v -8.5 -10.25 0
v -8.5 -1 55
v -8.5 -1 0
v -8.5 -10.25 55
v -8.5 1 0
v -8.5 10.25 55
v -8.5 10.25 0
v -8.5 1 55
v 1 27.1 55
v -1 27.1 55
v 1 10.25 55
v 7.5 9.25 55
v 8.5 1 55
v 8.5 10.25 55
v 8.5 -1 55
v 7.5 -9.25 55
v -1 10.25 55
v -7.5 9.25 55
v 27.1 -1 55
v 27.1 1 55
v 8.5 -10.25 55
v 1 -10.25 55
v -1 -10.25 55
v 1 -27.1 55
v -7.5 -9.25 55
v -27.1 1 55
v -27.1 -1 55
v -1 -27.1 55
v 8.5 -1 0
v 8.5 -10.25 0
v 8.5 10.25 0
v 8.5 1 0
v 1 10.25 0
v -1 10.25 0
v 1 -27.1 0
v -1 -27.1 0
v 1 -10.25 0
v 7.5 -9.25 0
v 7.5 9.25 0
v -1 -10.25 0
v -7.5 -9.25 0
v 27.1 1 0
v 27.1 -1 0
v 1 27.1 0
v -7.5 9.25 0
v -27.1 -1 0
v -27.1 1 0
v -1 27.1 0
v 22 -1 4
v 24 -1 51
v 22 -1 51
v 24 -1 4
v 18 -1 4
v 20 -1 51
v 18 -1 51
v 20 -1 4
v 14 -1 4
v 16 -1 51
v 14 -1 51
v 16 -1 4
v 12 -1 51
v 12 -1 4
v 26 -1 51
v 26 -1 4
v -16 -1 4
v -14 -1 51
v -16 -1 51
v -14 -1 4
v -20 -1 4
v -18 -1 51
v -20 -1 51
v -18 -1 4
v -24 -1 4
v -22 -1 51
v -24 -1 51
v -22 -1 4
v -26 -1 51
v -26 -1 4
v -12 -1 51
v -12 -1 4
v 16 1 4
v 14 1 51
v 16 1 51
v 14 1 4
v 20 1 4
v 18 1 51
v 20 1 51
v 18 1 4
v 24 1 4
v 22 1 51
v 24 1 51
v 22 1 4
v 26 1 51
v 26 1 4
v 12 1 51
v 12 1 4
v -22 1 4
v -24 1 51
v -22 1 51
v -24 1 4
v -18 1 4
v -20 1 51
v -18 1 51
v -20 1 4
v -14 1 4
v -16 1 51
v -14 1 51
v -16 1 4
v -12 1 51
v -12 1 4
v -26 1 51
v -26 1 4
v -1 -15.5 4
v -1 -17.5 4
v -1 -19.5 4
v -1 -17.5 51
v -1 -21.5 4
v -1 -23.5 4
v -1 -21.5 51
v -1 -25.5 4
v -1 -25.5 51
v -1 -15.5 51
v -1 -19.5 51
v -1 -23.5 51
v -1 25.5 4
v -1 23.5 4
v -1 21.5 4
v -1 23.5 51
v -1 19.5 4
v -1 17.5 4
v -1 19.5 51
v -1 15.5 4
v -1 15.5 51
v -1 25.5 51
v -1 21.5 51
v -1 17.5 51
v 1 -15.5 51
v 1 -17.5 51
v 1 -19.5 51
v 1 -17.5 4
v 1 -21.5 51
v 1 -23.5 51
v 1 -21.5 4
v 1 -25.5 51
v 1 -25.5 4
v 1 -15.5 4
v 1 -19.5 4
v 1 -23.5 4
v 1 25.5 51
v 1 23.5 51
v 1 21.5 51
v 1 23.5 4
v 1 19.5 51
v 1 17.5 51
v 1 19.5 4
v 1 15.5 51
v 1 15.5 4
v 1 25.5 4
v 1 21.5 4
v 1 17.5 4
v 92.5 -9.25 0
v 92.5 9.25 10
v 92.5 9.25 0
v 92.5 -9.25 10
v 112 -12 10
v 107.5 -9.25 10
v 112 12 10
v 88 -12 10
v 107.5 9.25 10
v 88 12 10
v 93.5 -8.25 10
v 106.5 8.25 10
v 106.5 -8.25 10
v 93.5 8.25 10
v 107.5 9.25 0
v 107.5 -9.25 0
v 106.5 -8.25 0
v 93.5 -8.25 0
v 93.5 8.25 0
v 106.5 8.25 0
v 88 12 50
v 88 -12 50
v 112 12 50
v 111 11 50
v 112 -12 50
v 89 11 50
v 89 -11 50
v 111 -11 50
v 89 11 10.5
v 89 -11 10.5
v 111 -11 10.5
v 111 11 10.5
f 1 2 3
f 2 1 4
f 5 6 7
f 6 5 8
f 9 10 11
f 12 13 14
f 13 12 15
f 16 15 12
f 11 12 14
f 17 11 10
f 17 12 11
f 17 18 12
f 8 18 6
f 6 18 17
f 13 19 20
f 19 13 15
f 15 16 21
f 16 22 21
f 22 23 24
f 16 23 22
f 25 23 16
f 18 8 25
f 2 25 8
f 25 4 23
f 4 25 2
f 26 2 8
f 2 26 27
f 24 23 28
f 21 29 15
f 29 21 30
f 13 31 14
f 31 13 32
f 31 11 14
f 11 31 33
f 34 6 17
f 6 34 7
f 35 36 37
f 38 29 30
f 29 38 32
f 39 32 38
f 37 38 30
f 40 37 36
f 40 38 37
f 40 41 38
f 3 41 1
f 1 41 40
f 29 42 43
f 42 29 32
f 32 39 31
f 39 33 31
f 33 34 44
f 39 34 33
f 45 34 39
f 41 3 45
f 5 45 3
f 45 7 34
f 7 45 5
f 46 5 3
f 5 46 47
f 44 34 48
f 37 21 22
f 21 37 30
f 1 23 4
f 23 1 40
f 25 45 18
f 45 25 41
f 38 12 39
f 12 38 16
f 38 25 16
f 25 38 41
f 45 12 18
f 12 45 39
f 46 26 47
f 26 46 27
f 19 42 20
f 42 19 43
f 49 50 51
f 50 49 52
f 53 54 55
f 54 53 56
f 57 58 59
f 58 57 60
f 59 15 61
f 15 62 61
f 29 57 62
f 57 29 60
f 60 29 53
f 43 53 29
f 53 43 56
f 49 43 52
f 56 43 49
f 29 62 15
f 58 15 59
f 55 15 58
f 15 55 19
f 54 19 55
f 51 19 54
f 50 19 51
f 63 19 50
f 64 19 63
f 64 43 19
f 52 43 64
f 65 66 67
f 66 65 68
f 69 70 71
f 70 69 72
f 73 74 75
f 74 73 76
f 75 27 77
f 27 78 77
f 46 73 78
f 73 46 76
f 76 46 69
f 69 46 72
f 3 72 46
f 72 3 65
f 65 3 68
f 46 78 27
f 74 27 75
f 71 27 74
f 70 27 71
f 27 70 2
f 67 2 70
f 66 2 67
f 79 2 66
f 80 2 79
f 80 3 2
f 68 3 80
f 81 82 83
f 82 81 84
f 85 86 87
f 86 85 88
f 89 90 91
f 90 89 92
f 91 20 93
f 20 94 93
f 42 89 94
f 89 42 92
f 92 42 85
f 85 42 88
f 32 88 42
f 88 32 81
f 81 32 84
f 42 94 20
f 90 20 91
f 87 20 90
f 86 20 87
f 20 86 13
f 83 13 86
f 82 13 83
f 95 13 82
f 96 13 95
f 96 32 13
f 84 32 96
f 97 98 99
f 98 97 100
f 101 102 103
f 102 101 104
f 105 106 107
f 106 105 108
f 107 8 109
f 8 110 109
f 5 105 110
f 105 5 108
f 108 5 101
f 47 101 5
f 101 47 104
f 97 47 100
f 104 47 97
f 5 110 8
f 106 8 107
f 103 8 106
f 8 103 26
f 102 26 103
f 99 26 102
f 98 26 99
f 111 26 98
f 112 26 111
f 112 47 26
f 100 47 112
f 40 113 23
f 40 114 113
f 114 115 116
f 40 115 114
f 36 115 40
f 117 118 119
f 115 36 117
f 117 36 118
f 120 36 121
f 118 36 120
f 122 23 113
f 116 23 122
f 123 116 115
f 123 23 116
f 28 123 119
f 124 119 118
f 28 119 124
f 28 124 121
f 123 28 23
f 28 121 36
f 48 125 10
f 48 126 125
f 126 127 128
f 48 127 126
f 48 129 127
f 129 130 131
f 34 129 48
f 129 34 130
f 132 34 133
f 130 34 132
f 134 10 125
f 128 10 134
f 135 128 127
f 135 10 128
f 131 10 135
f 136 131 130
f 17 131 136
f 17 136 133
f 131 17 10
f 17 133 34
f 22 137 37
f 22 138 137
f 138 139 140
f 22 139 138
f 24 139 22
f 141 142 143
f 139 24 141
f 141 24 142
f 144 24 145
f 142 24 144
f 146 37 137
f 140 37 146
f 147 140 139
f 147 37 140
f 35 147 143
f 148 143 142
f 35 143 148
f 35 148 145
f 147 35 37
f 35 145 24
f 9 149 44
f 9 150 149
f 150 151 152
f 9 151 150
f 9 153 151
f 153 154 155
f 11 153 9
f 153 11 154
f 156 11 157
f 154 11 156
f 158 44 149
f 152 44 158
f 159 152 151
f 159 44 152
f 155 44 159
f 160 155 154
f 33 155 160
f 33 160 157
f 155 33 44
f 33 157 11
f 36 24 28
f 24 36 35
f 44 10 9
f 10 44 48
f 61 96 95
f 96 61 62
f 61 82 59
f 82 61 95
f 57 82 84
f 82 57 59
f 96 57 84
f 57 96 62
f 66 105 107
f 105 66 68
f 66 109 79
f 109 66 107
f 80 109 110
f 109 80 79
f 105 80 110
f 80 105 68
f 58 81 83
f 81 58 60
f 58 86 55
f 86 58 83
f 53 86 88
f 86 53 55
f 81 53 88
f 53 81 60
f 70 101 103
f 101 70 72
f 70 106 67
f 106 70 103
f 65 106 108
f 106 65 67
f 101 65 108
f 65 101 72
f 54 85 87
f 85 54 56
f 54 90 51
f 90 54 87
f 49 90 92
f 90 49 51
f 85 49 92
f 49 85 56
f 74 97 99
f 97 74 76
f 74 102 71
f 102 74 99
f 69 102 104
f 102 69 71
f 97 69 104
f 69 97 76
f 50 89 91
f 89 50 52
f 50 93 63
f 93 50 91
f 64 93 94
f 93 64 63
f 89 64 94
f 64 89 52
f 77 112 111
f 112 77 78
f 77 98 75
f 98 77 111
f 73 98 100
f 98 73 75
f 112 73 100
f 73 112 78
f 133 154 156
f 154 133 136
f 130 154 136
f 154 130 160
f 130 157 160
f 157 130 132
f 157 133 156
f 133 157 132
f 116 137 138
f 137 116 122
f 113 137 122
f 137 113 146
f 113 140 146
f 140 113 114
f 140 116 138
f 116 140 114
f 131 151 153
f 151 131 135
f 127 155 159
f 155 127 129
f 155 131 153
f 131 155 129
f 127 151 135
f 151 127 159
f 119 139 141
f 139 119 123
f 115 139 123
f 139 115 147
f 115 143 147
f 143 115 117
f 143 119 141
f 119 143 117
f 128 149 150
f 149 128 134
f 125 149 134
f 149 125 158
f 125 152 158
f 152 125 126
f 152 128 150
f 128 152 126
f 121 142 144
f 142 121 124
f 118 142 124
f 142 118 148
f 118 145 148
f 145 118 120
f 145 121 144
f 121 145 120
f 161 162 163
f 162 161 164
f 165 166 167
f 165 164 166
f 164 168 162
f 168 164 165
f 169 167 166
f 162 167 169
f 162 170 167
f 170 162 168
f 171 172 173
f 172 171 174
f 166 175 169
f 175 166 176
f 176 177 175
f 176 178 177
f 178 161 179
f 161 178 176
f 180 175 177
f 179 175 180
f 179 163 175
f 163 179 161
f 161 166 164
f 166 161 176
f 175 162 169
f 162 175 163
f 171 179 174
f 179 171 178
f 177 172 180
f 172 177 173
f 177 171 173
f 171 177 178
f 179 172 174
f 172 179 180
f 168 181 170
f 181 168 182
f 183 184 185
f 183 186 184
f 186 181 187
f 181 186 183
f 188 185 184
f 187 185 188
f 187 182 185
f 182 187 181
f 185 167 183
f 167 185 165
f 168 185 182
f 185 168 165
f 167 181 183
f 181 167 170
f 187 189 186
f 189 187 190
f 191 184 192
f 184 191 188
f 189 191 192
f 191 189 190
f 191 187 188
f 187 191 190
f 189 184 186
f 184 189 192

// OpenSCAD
/*
MIT License

Copyright (c) 1019 Jose D. Saura

Permission is hereby granted, free of charge, to any person obtaining a copy
of this software and associated documentation files (the "Software"), to deal
in the Software without restriction, including without limitation the rights
to use, copy, modify, merge, publish, distribute, sublicense, and/or sell
copies of the Software, and to permit persons to whom the Software is
furnished to do so, subject to the following conditions:

The above copyright notice and this permission notice shall be included in all
copies or substantial portions of the Software.

THE SOFTWARE IS PROVIDED "AS IS", WITHOUT WARRANTY OF ANY KIND, EXPRESS OR
IMPLIED, INCLUDING BUT NOT LIMITED TO THE WARRANTIES OF MERCHANTABILITY,
FITNESS FOR A PARTICULAR PURPOSE AND NONINFRINGEMENT. IN NO EVENT SHALL THE
AUTHORS OR COPYRIGHT HOLDERS BE LIABLE FOR ANY CLAIM, DAMAGES OR OTHER
LIABILITY, WHETHER IN AN ACTION OF CONTRACT, TORT OR OTHERWISE, ARISING FROM,
OUT OF OR IN CONNECTION WITH THE SOFTWARE OR THE USE OR OTHER DEALINGS IN THE
SOFTWARE.
*/

/*
    Altimeter holder
    Keeps the jolly logic altimeter in vertical position centered 
    inside the instrument bay.
*/



// diameter of instrument bay
bay_id = 54.2;

// altimeter dimensions  14.5 x 18 x 49
altimeter_w = 15;
altimeter_d = 18.5;
altimeter_h = 55;

// wall thickness
wall = 2;


translate([0,0,altimeter_h/2])
{
    // draw the box that holds the altimeter
    difference() {
        cube([altimeter_w+wall, altimeter_d+wall, altimeter_h], center=true);
        cube([altimeter_w, altimeter_d, altimeter_h+1], center=true);
    }

    // draw arms that reach to the outer edge of the bay
    difference() {
        union () {
            cube([bay_id, wall ,altimeter_h], center=true);
            cube([wall, bay_id, altimeter_h], center=true);
        }
        cube([altimeter_w, altimeter_d, altimeter_h+1], center=true);
        
        // make slits
        for(x=[altimeter_w:2*wall:bay_id/2]) {
            translate([x-wall,0,0])
            cube([wall, wall+1, altimeter_h-4*wall], center=true);
            translate([-x+wall,0,0])
            cube([wall, wall+1, altimeter_h-4*wall], center=true);
        }

        // make slits
        for(x=[altimeter_d:2*wall:bay_id/2]) {
            translate([0,x-wall, 0])
            cube([wall+1, wall, altimeter_h-4*wall], center=true);
            translate([0,-x+wall, 0])
            #cube([wall+1, wall, altimeter_h-4*wall], center=true);
        }
    }

}

bigredbee_id = 22;
bigredbee_h = 40;
shoulder_h = 10;

translate([100,0, shoulder_h/2])
{
    color("blue")
    difference() {
        cube([altimeter_w, altimeter_d, 10], center=true);
        cube([altimeter_w-wall, altimeter_d-wall, 10+1], center=true);
    }
}

translate([100,0,shoulder_h+bigredbee_h/2])
{
    color("red")
    difference() {
        cube([bigredbee_id+wall, bigredbee_id+wall, bigredbee_h], center=true);
        translate([0,0,1])
        cube([bigredbee_id, bigredbee_id, bigredbee_h+1], center=true);
    }
}
